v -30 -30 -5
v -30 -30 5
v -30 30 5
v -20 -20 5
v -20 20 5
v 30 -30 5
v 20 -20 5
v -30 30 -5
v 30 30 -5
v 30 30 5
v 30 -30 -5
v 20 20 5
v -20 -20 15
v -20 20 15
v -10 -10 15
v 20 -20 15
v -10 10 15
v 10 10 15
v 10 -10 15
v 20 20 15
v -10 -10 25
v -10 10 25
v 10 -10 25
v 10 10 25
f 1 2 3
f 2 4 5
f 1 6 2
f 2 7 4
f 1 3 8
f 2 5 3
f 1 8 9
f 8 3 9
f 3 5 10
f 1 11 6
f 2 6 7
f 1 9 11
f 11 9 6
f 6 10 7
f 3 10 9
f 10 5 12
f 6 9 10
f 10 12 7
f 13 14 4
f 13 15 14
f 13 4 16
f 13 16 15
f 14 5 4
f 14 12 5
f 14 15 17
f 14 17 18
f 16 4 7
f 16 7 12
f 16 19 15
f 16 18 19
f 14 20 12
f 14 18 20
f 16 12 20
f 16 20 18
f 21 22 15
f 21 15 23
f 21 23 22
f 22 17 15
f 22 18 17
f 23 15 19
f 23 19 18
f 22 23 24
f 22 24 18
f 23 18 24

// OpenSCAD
// パラメータ設定
plate_height = 10; // 各段の高さ
z_offset = 0;      // Z軸のオフセット（ここでは積み上げを表現するため、各段がZ方向に分かれて配置されます）

// 段1: 底辺 (60mm x 60mm)
size_base = 60;
plate_base = [size_base, size_base, plate_height];

// 段2: 中央 (40mm x 40mm)
size_middle = 40;
plate_middle = [size_middle, size_middle, plate_height];

// 段3: 上辺 (20mm x 20mm)
size_top = 20;
plate_top = [size_top, size_top, plate_height];


// --- 構造の構築 ---

// 1. 底辺を配置 (中心 (0, 0))
translate([0, 0, z_offset]) {
    cube(size = plate_base, center = true);
}

// 2. 中央の板を配置 (底辺の上に、中央揃えで)
// Z座標は前の板の高さ分上に移動
translate([0, 0, plate_height]) {
    cube(size = plate_middle, center = true);
}

// 3. 最上の板を配置 (中央の板の上に、中央揃えで)
// Z座標は2段目の高さ分上に移動
translate([0, 0, 2 * plate_height]) {
    cube(size = plate_top, center = true);
}
